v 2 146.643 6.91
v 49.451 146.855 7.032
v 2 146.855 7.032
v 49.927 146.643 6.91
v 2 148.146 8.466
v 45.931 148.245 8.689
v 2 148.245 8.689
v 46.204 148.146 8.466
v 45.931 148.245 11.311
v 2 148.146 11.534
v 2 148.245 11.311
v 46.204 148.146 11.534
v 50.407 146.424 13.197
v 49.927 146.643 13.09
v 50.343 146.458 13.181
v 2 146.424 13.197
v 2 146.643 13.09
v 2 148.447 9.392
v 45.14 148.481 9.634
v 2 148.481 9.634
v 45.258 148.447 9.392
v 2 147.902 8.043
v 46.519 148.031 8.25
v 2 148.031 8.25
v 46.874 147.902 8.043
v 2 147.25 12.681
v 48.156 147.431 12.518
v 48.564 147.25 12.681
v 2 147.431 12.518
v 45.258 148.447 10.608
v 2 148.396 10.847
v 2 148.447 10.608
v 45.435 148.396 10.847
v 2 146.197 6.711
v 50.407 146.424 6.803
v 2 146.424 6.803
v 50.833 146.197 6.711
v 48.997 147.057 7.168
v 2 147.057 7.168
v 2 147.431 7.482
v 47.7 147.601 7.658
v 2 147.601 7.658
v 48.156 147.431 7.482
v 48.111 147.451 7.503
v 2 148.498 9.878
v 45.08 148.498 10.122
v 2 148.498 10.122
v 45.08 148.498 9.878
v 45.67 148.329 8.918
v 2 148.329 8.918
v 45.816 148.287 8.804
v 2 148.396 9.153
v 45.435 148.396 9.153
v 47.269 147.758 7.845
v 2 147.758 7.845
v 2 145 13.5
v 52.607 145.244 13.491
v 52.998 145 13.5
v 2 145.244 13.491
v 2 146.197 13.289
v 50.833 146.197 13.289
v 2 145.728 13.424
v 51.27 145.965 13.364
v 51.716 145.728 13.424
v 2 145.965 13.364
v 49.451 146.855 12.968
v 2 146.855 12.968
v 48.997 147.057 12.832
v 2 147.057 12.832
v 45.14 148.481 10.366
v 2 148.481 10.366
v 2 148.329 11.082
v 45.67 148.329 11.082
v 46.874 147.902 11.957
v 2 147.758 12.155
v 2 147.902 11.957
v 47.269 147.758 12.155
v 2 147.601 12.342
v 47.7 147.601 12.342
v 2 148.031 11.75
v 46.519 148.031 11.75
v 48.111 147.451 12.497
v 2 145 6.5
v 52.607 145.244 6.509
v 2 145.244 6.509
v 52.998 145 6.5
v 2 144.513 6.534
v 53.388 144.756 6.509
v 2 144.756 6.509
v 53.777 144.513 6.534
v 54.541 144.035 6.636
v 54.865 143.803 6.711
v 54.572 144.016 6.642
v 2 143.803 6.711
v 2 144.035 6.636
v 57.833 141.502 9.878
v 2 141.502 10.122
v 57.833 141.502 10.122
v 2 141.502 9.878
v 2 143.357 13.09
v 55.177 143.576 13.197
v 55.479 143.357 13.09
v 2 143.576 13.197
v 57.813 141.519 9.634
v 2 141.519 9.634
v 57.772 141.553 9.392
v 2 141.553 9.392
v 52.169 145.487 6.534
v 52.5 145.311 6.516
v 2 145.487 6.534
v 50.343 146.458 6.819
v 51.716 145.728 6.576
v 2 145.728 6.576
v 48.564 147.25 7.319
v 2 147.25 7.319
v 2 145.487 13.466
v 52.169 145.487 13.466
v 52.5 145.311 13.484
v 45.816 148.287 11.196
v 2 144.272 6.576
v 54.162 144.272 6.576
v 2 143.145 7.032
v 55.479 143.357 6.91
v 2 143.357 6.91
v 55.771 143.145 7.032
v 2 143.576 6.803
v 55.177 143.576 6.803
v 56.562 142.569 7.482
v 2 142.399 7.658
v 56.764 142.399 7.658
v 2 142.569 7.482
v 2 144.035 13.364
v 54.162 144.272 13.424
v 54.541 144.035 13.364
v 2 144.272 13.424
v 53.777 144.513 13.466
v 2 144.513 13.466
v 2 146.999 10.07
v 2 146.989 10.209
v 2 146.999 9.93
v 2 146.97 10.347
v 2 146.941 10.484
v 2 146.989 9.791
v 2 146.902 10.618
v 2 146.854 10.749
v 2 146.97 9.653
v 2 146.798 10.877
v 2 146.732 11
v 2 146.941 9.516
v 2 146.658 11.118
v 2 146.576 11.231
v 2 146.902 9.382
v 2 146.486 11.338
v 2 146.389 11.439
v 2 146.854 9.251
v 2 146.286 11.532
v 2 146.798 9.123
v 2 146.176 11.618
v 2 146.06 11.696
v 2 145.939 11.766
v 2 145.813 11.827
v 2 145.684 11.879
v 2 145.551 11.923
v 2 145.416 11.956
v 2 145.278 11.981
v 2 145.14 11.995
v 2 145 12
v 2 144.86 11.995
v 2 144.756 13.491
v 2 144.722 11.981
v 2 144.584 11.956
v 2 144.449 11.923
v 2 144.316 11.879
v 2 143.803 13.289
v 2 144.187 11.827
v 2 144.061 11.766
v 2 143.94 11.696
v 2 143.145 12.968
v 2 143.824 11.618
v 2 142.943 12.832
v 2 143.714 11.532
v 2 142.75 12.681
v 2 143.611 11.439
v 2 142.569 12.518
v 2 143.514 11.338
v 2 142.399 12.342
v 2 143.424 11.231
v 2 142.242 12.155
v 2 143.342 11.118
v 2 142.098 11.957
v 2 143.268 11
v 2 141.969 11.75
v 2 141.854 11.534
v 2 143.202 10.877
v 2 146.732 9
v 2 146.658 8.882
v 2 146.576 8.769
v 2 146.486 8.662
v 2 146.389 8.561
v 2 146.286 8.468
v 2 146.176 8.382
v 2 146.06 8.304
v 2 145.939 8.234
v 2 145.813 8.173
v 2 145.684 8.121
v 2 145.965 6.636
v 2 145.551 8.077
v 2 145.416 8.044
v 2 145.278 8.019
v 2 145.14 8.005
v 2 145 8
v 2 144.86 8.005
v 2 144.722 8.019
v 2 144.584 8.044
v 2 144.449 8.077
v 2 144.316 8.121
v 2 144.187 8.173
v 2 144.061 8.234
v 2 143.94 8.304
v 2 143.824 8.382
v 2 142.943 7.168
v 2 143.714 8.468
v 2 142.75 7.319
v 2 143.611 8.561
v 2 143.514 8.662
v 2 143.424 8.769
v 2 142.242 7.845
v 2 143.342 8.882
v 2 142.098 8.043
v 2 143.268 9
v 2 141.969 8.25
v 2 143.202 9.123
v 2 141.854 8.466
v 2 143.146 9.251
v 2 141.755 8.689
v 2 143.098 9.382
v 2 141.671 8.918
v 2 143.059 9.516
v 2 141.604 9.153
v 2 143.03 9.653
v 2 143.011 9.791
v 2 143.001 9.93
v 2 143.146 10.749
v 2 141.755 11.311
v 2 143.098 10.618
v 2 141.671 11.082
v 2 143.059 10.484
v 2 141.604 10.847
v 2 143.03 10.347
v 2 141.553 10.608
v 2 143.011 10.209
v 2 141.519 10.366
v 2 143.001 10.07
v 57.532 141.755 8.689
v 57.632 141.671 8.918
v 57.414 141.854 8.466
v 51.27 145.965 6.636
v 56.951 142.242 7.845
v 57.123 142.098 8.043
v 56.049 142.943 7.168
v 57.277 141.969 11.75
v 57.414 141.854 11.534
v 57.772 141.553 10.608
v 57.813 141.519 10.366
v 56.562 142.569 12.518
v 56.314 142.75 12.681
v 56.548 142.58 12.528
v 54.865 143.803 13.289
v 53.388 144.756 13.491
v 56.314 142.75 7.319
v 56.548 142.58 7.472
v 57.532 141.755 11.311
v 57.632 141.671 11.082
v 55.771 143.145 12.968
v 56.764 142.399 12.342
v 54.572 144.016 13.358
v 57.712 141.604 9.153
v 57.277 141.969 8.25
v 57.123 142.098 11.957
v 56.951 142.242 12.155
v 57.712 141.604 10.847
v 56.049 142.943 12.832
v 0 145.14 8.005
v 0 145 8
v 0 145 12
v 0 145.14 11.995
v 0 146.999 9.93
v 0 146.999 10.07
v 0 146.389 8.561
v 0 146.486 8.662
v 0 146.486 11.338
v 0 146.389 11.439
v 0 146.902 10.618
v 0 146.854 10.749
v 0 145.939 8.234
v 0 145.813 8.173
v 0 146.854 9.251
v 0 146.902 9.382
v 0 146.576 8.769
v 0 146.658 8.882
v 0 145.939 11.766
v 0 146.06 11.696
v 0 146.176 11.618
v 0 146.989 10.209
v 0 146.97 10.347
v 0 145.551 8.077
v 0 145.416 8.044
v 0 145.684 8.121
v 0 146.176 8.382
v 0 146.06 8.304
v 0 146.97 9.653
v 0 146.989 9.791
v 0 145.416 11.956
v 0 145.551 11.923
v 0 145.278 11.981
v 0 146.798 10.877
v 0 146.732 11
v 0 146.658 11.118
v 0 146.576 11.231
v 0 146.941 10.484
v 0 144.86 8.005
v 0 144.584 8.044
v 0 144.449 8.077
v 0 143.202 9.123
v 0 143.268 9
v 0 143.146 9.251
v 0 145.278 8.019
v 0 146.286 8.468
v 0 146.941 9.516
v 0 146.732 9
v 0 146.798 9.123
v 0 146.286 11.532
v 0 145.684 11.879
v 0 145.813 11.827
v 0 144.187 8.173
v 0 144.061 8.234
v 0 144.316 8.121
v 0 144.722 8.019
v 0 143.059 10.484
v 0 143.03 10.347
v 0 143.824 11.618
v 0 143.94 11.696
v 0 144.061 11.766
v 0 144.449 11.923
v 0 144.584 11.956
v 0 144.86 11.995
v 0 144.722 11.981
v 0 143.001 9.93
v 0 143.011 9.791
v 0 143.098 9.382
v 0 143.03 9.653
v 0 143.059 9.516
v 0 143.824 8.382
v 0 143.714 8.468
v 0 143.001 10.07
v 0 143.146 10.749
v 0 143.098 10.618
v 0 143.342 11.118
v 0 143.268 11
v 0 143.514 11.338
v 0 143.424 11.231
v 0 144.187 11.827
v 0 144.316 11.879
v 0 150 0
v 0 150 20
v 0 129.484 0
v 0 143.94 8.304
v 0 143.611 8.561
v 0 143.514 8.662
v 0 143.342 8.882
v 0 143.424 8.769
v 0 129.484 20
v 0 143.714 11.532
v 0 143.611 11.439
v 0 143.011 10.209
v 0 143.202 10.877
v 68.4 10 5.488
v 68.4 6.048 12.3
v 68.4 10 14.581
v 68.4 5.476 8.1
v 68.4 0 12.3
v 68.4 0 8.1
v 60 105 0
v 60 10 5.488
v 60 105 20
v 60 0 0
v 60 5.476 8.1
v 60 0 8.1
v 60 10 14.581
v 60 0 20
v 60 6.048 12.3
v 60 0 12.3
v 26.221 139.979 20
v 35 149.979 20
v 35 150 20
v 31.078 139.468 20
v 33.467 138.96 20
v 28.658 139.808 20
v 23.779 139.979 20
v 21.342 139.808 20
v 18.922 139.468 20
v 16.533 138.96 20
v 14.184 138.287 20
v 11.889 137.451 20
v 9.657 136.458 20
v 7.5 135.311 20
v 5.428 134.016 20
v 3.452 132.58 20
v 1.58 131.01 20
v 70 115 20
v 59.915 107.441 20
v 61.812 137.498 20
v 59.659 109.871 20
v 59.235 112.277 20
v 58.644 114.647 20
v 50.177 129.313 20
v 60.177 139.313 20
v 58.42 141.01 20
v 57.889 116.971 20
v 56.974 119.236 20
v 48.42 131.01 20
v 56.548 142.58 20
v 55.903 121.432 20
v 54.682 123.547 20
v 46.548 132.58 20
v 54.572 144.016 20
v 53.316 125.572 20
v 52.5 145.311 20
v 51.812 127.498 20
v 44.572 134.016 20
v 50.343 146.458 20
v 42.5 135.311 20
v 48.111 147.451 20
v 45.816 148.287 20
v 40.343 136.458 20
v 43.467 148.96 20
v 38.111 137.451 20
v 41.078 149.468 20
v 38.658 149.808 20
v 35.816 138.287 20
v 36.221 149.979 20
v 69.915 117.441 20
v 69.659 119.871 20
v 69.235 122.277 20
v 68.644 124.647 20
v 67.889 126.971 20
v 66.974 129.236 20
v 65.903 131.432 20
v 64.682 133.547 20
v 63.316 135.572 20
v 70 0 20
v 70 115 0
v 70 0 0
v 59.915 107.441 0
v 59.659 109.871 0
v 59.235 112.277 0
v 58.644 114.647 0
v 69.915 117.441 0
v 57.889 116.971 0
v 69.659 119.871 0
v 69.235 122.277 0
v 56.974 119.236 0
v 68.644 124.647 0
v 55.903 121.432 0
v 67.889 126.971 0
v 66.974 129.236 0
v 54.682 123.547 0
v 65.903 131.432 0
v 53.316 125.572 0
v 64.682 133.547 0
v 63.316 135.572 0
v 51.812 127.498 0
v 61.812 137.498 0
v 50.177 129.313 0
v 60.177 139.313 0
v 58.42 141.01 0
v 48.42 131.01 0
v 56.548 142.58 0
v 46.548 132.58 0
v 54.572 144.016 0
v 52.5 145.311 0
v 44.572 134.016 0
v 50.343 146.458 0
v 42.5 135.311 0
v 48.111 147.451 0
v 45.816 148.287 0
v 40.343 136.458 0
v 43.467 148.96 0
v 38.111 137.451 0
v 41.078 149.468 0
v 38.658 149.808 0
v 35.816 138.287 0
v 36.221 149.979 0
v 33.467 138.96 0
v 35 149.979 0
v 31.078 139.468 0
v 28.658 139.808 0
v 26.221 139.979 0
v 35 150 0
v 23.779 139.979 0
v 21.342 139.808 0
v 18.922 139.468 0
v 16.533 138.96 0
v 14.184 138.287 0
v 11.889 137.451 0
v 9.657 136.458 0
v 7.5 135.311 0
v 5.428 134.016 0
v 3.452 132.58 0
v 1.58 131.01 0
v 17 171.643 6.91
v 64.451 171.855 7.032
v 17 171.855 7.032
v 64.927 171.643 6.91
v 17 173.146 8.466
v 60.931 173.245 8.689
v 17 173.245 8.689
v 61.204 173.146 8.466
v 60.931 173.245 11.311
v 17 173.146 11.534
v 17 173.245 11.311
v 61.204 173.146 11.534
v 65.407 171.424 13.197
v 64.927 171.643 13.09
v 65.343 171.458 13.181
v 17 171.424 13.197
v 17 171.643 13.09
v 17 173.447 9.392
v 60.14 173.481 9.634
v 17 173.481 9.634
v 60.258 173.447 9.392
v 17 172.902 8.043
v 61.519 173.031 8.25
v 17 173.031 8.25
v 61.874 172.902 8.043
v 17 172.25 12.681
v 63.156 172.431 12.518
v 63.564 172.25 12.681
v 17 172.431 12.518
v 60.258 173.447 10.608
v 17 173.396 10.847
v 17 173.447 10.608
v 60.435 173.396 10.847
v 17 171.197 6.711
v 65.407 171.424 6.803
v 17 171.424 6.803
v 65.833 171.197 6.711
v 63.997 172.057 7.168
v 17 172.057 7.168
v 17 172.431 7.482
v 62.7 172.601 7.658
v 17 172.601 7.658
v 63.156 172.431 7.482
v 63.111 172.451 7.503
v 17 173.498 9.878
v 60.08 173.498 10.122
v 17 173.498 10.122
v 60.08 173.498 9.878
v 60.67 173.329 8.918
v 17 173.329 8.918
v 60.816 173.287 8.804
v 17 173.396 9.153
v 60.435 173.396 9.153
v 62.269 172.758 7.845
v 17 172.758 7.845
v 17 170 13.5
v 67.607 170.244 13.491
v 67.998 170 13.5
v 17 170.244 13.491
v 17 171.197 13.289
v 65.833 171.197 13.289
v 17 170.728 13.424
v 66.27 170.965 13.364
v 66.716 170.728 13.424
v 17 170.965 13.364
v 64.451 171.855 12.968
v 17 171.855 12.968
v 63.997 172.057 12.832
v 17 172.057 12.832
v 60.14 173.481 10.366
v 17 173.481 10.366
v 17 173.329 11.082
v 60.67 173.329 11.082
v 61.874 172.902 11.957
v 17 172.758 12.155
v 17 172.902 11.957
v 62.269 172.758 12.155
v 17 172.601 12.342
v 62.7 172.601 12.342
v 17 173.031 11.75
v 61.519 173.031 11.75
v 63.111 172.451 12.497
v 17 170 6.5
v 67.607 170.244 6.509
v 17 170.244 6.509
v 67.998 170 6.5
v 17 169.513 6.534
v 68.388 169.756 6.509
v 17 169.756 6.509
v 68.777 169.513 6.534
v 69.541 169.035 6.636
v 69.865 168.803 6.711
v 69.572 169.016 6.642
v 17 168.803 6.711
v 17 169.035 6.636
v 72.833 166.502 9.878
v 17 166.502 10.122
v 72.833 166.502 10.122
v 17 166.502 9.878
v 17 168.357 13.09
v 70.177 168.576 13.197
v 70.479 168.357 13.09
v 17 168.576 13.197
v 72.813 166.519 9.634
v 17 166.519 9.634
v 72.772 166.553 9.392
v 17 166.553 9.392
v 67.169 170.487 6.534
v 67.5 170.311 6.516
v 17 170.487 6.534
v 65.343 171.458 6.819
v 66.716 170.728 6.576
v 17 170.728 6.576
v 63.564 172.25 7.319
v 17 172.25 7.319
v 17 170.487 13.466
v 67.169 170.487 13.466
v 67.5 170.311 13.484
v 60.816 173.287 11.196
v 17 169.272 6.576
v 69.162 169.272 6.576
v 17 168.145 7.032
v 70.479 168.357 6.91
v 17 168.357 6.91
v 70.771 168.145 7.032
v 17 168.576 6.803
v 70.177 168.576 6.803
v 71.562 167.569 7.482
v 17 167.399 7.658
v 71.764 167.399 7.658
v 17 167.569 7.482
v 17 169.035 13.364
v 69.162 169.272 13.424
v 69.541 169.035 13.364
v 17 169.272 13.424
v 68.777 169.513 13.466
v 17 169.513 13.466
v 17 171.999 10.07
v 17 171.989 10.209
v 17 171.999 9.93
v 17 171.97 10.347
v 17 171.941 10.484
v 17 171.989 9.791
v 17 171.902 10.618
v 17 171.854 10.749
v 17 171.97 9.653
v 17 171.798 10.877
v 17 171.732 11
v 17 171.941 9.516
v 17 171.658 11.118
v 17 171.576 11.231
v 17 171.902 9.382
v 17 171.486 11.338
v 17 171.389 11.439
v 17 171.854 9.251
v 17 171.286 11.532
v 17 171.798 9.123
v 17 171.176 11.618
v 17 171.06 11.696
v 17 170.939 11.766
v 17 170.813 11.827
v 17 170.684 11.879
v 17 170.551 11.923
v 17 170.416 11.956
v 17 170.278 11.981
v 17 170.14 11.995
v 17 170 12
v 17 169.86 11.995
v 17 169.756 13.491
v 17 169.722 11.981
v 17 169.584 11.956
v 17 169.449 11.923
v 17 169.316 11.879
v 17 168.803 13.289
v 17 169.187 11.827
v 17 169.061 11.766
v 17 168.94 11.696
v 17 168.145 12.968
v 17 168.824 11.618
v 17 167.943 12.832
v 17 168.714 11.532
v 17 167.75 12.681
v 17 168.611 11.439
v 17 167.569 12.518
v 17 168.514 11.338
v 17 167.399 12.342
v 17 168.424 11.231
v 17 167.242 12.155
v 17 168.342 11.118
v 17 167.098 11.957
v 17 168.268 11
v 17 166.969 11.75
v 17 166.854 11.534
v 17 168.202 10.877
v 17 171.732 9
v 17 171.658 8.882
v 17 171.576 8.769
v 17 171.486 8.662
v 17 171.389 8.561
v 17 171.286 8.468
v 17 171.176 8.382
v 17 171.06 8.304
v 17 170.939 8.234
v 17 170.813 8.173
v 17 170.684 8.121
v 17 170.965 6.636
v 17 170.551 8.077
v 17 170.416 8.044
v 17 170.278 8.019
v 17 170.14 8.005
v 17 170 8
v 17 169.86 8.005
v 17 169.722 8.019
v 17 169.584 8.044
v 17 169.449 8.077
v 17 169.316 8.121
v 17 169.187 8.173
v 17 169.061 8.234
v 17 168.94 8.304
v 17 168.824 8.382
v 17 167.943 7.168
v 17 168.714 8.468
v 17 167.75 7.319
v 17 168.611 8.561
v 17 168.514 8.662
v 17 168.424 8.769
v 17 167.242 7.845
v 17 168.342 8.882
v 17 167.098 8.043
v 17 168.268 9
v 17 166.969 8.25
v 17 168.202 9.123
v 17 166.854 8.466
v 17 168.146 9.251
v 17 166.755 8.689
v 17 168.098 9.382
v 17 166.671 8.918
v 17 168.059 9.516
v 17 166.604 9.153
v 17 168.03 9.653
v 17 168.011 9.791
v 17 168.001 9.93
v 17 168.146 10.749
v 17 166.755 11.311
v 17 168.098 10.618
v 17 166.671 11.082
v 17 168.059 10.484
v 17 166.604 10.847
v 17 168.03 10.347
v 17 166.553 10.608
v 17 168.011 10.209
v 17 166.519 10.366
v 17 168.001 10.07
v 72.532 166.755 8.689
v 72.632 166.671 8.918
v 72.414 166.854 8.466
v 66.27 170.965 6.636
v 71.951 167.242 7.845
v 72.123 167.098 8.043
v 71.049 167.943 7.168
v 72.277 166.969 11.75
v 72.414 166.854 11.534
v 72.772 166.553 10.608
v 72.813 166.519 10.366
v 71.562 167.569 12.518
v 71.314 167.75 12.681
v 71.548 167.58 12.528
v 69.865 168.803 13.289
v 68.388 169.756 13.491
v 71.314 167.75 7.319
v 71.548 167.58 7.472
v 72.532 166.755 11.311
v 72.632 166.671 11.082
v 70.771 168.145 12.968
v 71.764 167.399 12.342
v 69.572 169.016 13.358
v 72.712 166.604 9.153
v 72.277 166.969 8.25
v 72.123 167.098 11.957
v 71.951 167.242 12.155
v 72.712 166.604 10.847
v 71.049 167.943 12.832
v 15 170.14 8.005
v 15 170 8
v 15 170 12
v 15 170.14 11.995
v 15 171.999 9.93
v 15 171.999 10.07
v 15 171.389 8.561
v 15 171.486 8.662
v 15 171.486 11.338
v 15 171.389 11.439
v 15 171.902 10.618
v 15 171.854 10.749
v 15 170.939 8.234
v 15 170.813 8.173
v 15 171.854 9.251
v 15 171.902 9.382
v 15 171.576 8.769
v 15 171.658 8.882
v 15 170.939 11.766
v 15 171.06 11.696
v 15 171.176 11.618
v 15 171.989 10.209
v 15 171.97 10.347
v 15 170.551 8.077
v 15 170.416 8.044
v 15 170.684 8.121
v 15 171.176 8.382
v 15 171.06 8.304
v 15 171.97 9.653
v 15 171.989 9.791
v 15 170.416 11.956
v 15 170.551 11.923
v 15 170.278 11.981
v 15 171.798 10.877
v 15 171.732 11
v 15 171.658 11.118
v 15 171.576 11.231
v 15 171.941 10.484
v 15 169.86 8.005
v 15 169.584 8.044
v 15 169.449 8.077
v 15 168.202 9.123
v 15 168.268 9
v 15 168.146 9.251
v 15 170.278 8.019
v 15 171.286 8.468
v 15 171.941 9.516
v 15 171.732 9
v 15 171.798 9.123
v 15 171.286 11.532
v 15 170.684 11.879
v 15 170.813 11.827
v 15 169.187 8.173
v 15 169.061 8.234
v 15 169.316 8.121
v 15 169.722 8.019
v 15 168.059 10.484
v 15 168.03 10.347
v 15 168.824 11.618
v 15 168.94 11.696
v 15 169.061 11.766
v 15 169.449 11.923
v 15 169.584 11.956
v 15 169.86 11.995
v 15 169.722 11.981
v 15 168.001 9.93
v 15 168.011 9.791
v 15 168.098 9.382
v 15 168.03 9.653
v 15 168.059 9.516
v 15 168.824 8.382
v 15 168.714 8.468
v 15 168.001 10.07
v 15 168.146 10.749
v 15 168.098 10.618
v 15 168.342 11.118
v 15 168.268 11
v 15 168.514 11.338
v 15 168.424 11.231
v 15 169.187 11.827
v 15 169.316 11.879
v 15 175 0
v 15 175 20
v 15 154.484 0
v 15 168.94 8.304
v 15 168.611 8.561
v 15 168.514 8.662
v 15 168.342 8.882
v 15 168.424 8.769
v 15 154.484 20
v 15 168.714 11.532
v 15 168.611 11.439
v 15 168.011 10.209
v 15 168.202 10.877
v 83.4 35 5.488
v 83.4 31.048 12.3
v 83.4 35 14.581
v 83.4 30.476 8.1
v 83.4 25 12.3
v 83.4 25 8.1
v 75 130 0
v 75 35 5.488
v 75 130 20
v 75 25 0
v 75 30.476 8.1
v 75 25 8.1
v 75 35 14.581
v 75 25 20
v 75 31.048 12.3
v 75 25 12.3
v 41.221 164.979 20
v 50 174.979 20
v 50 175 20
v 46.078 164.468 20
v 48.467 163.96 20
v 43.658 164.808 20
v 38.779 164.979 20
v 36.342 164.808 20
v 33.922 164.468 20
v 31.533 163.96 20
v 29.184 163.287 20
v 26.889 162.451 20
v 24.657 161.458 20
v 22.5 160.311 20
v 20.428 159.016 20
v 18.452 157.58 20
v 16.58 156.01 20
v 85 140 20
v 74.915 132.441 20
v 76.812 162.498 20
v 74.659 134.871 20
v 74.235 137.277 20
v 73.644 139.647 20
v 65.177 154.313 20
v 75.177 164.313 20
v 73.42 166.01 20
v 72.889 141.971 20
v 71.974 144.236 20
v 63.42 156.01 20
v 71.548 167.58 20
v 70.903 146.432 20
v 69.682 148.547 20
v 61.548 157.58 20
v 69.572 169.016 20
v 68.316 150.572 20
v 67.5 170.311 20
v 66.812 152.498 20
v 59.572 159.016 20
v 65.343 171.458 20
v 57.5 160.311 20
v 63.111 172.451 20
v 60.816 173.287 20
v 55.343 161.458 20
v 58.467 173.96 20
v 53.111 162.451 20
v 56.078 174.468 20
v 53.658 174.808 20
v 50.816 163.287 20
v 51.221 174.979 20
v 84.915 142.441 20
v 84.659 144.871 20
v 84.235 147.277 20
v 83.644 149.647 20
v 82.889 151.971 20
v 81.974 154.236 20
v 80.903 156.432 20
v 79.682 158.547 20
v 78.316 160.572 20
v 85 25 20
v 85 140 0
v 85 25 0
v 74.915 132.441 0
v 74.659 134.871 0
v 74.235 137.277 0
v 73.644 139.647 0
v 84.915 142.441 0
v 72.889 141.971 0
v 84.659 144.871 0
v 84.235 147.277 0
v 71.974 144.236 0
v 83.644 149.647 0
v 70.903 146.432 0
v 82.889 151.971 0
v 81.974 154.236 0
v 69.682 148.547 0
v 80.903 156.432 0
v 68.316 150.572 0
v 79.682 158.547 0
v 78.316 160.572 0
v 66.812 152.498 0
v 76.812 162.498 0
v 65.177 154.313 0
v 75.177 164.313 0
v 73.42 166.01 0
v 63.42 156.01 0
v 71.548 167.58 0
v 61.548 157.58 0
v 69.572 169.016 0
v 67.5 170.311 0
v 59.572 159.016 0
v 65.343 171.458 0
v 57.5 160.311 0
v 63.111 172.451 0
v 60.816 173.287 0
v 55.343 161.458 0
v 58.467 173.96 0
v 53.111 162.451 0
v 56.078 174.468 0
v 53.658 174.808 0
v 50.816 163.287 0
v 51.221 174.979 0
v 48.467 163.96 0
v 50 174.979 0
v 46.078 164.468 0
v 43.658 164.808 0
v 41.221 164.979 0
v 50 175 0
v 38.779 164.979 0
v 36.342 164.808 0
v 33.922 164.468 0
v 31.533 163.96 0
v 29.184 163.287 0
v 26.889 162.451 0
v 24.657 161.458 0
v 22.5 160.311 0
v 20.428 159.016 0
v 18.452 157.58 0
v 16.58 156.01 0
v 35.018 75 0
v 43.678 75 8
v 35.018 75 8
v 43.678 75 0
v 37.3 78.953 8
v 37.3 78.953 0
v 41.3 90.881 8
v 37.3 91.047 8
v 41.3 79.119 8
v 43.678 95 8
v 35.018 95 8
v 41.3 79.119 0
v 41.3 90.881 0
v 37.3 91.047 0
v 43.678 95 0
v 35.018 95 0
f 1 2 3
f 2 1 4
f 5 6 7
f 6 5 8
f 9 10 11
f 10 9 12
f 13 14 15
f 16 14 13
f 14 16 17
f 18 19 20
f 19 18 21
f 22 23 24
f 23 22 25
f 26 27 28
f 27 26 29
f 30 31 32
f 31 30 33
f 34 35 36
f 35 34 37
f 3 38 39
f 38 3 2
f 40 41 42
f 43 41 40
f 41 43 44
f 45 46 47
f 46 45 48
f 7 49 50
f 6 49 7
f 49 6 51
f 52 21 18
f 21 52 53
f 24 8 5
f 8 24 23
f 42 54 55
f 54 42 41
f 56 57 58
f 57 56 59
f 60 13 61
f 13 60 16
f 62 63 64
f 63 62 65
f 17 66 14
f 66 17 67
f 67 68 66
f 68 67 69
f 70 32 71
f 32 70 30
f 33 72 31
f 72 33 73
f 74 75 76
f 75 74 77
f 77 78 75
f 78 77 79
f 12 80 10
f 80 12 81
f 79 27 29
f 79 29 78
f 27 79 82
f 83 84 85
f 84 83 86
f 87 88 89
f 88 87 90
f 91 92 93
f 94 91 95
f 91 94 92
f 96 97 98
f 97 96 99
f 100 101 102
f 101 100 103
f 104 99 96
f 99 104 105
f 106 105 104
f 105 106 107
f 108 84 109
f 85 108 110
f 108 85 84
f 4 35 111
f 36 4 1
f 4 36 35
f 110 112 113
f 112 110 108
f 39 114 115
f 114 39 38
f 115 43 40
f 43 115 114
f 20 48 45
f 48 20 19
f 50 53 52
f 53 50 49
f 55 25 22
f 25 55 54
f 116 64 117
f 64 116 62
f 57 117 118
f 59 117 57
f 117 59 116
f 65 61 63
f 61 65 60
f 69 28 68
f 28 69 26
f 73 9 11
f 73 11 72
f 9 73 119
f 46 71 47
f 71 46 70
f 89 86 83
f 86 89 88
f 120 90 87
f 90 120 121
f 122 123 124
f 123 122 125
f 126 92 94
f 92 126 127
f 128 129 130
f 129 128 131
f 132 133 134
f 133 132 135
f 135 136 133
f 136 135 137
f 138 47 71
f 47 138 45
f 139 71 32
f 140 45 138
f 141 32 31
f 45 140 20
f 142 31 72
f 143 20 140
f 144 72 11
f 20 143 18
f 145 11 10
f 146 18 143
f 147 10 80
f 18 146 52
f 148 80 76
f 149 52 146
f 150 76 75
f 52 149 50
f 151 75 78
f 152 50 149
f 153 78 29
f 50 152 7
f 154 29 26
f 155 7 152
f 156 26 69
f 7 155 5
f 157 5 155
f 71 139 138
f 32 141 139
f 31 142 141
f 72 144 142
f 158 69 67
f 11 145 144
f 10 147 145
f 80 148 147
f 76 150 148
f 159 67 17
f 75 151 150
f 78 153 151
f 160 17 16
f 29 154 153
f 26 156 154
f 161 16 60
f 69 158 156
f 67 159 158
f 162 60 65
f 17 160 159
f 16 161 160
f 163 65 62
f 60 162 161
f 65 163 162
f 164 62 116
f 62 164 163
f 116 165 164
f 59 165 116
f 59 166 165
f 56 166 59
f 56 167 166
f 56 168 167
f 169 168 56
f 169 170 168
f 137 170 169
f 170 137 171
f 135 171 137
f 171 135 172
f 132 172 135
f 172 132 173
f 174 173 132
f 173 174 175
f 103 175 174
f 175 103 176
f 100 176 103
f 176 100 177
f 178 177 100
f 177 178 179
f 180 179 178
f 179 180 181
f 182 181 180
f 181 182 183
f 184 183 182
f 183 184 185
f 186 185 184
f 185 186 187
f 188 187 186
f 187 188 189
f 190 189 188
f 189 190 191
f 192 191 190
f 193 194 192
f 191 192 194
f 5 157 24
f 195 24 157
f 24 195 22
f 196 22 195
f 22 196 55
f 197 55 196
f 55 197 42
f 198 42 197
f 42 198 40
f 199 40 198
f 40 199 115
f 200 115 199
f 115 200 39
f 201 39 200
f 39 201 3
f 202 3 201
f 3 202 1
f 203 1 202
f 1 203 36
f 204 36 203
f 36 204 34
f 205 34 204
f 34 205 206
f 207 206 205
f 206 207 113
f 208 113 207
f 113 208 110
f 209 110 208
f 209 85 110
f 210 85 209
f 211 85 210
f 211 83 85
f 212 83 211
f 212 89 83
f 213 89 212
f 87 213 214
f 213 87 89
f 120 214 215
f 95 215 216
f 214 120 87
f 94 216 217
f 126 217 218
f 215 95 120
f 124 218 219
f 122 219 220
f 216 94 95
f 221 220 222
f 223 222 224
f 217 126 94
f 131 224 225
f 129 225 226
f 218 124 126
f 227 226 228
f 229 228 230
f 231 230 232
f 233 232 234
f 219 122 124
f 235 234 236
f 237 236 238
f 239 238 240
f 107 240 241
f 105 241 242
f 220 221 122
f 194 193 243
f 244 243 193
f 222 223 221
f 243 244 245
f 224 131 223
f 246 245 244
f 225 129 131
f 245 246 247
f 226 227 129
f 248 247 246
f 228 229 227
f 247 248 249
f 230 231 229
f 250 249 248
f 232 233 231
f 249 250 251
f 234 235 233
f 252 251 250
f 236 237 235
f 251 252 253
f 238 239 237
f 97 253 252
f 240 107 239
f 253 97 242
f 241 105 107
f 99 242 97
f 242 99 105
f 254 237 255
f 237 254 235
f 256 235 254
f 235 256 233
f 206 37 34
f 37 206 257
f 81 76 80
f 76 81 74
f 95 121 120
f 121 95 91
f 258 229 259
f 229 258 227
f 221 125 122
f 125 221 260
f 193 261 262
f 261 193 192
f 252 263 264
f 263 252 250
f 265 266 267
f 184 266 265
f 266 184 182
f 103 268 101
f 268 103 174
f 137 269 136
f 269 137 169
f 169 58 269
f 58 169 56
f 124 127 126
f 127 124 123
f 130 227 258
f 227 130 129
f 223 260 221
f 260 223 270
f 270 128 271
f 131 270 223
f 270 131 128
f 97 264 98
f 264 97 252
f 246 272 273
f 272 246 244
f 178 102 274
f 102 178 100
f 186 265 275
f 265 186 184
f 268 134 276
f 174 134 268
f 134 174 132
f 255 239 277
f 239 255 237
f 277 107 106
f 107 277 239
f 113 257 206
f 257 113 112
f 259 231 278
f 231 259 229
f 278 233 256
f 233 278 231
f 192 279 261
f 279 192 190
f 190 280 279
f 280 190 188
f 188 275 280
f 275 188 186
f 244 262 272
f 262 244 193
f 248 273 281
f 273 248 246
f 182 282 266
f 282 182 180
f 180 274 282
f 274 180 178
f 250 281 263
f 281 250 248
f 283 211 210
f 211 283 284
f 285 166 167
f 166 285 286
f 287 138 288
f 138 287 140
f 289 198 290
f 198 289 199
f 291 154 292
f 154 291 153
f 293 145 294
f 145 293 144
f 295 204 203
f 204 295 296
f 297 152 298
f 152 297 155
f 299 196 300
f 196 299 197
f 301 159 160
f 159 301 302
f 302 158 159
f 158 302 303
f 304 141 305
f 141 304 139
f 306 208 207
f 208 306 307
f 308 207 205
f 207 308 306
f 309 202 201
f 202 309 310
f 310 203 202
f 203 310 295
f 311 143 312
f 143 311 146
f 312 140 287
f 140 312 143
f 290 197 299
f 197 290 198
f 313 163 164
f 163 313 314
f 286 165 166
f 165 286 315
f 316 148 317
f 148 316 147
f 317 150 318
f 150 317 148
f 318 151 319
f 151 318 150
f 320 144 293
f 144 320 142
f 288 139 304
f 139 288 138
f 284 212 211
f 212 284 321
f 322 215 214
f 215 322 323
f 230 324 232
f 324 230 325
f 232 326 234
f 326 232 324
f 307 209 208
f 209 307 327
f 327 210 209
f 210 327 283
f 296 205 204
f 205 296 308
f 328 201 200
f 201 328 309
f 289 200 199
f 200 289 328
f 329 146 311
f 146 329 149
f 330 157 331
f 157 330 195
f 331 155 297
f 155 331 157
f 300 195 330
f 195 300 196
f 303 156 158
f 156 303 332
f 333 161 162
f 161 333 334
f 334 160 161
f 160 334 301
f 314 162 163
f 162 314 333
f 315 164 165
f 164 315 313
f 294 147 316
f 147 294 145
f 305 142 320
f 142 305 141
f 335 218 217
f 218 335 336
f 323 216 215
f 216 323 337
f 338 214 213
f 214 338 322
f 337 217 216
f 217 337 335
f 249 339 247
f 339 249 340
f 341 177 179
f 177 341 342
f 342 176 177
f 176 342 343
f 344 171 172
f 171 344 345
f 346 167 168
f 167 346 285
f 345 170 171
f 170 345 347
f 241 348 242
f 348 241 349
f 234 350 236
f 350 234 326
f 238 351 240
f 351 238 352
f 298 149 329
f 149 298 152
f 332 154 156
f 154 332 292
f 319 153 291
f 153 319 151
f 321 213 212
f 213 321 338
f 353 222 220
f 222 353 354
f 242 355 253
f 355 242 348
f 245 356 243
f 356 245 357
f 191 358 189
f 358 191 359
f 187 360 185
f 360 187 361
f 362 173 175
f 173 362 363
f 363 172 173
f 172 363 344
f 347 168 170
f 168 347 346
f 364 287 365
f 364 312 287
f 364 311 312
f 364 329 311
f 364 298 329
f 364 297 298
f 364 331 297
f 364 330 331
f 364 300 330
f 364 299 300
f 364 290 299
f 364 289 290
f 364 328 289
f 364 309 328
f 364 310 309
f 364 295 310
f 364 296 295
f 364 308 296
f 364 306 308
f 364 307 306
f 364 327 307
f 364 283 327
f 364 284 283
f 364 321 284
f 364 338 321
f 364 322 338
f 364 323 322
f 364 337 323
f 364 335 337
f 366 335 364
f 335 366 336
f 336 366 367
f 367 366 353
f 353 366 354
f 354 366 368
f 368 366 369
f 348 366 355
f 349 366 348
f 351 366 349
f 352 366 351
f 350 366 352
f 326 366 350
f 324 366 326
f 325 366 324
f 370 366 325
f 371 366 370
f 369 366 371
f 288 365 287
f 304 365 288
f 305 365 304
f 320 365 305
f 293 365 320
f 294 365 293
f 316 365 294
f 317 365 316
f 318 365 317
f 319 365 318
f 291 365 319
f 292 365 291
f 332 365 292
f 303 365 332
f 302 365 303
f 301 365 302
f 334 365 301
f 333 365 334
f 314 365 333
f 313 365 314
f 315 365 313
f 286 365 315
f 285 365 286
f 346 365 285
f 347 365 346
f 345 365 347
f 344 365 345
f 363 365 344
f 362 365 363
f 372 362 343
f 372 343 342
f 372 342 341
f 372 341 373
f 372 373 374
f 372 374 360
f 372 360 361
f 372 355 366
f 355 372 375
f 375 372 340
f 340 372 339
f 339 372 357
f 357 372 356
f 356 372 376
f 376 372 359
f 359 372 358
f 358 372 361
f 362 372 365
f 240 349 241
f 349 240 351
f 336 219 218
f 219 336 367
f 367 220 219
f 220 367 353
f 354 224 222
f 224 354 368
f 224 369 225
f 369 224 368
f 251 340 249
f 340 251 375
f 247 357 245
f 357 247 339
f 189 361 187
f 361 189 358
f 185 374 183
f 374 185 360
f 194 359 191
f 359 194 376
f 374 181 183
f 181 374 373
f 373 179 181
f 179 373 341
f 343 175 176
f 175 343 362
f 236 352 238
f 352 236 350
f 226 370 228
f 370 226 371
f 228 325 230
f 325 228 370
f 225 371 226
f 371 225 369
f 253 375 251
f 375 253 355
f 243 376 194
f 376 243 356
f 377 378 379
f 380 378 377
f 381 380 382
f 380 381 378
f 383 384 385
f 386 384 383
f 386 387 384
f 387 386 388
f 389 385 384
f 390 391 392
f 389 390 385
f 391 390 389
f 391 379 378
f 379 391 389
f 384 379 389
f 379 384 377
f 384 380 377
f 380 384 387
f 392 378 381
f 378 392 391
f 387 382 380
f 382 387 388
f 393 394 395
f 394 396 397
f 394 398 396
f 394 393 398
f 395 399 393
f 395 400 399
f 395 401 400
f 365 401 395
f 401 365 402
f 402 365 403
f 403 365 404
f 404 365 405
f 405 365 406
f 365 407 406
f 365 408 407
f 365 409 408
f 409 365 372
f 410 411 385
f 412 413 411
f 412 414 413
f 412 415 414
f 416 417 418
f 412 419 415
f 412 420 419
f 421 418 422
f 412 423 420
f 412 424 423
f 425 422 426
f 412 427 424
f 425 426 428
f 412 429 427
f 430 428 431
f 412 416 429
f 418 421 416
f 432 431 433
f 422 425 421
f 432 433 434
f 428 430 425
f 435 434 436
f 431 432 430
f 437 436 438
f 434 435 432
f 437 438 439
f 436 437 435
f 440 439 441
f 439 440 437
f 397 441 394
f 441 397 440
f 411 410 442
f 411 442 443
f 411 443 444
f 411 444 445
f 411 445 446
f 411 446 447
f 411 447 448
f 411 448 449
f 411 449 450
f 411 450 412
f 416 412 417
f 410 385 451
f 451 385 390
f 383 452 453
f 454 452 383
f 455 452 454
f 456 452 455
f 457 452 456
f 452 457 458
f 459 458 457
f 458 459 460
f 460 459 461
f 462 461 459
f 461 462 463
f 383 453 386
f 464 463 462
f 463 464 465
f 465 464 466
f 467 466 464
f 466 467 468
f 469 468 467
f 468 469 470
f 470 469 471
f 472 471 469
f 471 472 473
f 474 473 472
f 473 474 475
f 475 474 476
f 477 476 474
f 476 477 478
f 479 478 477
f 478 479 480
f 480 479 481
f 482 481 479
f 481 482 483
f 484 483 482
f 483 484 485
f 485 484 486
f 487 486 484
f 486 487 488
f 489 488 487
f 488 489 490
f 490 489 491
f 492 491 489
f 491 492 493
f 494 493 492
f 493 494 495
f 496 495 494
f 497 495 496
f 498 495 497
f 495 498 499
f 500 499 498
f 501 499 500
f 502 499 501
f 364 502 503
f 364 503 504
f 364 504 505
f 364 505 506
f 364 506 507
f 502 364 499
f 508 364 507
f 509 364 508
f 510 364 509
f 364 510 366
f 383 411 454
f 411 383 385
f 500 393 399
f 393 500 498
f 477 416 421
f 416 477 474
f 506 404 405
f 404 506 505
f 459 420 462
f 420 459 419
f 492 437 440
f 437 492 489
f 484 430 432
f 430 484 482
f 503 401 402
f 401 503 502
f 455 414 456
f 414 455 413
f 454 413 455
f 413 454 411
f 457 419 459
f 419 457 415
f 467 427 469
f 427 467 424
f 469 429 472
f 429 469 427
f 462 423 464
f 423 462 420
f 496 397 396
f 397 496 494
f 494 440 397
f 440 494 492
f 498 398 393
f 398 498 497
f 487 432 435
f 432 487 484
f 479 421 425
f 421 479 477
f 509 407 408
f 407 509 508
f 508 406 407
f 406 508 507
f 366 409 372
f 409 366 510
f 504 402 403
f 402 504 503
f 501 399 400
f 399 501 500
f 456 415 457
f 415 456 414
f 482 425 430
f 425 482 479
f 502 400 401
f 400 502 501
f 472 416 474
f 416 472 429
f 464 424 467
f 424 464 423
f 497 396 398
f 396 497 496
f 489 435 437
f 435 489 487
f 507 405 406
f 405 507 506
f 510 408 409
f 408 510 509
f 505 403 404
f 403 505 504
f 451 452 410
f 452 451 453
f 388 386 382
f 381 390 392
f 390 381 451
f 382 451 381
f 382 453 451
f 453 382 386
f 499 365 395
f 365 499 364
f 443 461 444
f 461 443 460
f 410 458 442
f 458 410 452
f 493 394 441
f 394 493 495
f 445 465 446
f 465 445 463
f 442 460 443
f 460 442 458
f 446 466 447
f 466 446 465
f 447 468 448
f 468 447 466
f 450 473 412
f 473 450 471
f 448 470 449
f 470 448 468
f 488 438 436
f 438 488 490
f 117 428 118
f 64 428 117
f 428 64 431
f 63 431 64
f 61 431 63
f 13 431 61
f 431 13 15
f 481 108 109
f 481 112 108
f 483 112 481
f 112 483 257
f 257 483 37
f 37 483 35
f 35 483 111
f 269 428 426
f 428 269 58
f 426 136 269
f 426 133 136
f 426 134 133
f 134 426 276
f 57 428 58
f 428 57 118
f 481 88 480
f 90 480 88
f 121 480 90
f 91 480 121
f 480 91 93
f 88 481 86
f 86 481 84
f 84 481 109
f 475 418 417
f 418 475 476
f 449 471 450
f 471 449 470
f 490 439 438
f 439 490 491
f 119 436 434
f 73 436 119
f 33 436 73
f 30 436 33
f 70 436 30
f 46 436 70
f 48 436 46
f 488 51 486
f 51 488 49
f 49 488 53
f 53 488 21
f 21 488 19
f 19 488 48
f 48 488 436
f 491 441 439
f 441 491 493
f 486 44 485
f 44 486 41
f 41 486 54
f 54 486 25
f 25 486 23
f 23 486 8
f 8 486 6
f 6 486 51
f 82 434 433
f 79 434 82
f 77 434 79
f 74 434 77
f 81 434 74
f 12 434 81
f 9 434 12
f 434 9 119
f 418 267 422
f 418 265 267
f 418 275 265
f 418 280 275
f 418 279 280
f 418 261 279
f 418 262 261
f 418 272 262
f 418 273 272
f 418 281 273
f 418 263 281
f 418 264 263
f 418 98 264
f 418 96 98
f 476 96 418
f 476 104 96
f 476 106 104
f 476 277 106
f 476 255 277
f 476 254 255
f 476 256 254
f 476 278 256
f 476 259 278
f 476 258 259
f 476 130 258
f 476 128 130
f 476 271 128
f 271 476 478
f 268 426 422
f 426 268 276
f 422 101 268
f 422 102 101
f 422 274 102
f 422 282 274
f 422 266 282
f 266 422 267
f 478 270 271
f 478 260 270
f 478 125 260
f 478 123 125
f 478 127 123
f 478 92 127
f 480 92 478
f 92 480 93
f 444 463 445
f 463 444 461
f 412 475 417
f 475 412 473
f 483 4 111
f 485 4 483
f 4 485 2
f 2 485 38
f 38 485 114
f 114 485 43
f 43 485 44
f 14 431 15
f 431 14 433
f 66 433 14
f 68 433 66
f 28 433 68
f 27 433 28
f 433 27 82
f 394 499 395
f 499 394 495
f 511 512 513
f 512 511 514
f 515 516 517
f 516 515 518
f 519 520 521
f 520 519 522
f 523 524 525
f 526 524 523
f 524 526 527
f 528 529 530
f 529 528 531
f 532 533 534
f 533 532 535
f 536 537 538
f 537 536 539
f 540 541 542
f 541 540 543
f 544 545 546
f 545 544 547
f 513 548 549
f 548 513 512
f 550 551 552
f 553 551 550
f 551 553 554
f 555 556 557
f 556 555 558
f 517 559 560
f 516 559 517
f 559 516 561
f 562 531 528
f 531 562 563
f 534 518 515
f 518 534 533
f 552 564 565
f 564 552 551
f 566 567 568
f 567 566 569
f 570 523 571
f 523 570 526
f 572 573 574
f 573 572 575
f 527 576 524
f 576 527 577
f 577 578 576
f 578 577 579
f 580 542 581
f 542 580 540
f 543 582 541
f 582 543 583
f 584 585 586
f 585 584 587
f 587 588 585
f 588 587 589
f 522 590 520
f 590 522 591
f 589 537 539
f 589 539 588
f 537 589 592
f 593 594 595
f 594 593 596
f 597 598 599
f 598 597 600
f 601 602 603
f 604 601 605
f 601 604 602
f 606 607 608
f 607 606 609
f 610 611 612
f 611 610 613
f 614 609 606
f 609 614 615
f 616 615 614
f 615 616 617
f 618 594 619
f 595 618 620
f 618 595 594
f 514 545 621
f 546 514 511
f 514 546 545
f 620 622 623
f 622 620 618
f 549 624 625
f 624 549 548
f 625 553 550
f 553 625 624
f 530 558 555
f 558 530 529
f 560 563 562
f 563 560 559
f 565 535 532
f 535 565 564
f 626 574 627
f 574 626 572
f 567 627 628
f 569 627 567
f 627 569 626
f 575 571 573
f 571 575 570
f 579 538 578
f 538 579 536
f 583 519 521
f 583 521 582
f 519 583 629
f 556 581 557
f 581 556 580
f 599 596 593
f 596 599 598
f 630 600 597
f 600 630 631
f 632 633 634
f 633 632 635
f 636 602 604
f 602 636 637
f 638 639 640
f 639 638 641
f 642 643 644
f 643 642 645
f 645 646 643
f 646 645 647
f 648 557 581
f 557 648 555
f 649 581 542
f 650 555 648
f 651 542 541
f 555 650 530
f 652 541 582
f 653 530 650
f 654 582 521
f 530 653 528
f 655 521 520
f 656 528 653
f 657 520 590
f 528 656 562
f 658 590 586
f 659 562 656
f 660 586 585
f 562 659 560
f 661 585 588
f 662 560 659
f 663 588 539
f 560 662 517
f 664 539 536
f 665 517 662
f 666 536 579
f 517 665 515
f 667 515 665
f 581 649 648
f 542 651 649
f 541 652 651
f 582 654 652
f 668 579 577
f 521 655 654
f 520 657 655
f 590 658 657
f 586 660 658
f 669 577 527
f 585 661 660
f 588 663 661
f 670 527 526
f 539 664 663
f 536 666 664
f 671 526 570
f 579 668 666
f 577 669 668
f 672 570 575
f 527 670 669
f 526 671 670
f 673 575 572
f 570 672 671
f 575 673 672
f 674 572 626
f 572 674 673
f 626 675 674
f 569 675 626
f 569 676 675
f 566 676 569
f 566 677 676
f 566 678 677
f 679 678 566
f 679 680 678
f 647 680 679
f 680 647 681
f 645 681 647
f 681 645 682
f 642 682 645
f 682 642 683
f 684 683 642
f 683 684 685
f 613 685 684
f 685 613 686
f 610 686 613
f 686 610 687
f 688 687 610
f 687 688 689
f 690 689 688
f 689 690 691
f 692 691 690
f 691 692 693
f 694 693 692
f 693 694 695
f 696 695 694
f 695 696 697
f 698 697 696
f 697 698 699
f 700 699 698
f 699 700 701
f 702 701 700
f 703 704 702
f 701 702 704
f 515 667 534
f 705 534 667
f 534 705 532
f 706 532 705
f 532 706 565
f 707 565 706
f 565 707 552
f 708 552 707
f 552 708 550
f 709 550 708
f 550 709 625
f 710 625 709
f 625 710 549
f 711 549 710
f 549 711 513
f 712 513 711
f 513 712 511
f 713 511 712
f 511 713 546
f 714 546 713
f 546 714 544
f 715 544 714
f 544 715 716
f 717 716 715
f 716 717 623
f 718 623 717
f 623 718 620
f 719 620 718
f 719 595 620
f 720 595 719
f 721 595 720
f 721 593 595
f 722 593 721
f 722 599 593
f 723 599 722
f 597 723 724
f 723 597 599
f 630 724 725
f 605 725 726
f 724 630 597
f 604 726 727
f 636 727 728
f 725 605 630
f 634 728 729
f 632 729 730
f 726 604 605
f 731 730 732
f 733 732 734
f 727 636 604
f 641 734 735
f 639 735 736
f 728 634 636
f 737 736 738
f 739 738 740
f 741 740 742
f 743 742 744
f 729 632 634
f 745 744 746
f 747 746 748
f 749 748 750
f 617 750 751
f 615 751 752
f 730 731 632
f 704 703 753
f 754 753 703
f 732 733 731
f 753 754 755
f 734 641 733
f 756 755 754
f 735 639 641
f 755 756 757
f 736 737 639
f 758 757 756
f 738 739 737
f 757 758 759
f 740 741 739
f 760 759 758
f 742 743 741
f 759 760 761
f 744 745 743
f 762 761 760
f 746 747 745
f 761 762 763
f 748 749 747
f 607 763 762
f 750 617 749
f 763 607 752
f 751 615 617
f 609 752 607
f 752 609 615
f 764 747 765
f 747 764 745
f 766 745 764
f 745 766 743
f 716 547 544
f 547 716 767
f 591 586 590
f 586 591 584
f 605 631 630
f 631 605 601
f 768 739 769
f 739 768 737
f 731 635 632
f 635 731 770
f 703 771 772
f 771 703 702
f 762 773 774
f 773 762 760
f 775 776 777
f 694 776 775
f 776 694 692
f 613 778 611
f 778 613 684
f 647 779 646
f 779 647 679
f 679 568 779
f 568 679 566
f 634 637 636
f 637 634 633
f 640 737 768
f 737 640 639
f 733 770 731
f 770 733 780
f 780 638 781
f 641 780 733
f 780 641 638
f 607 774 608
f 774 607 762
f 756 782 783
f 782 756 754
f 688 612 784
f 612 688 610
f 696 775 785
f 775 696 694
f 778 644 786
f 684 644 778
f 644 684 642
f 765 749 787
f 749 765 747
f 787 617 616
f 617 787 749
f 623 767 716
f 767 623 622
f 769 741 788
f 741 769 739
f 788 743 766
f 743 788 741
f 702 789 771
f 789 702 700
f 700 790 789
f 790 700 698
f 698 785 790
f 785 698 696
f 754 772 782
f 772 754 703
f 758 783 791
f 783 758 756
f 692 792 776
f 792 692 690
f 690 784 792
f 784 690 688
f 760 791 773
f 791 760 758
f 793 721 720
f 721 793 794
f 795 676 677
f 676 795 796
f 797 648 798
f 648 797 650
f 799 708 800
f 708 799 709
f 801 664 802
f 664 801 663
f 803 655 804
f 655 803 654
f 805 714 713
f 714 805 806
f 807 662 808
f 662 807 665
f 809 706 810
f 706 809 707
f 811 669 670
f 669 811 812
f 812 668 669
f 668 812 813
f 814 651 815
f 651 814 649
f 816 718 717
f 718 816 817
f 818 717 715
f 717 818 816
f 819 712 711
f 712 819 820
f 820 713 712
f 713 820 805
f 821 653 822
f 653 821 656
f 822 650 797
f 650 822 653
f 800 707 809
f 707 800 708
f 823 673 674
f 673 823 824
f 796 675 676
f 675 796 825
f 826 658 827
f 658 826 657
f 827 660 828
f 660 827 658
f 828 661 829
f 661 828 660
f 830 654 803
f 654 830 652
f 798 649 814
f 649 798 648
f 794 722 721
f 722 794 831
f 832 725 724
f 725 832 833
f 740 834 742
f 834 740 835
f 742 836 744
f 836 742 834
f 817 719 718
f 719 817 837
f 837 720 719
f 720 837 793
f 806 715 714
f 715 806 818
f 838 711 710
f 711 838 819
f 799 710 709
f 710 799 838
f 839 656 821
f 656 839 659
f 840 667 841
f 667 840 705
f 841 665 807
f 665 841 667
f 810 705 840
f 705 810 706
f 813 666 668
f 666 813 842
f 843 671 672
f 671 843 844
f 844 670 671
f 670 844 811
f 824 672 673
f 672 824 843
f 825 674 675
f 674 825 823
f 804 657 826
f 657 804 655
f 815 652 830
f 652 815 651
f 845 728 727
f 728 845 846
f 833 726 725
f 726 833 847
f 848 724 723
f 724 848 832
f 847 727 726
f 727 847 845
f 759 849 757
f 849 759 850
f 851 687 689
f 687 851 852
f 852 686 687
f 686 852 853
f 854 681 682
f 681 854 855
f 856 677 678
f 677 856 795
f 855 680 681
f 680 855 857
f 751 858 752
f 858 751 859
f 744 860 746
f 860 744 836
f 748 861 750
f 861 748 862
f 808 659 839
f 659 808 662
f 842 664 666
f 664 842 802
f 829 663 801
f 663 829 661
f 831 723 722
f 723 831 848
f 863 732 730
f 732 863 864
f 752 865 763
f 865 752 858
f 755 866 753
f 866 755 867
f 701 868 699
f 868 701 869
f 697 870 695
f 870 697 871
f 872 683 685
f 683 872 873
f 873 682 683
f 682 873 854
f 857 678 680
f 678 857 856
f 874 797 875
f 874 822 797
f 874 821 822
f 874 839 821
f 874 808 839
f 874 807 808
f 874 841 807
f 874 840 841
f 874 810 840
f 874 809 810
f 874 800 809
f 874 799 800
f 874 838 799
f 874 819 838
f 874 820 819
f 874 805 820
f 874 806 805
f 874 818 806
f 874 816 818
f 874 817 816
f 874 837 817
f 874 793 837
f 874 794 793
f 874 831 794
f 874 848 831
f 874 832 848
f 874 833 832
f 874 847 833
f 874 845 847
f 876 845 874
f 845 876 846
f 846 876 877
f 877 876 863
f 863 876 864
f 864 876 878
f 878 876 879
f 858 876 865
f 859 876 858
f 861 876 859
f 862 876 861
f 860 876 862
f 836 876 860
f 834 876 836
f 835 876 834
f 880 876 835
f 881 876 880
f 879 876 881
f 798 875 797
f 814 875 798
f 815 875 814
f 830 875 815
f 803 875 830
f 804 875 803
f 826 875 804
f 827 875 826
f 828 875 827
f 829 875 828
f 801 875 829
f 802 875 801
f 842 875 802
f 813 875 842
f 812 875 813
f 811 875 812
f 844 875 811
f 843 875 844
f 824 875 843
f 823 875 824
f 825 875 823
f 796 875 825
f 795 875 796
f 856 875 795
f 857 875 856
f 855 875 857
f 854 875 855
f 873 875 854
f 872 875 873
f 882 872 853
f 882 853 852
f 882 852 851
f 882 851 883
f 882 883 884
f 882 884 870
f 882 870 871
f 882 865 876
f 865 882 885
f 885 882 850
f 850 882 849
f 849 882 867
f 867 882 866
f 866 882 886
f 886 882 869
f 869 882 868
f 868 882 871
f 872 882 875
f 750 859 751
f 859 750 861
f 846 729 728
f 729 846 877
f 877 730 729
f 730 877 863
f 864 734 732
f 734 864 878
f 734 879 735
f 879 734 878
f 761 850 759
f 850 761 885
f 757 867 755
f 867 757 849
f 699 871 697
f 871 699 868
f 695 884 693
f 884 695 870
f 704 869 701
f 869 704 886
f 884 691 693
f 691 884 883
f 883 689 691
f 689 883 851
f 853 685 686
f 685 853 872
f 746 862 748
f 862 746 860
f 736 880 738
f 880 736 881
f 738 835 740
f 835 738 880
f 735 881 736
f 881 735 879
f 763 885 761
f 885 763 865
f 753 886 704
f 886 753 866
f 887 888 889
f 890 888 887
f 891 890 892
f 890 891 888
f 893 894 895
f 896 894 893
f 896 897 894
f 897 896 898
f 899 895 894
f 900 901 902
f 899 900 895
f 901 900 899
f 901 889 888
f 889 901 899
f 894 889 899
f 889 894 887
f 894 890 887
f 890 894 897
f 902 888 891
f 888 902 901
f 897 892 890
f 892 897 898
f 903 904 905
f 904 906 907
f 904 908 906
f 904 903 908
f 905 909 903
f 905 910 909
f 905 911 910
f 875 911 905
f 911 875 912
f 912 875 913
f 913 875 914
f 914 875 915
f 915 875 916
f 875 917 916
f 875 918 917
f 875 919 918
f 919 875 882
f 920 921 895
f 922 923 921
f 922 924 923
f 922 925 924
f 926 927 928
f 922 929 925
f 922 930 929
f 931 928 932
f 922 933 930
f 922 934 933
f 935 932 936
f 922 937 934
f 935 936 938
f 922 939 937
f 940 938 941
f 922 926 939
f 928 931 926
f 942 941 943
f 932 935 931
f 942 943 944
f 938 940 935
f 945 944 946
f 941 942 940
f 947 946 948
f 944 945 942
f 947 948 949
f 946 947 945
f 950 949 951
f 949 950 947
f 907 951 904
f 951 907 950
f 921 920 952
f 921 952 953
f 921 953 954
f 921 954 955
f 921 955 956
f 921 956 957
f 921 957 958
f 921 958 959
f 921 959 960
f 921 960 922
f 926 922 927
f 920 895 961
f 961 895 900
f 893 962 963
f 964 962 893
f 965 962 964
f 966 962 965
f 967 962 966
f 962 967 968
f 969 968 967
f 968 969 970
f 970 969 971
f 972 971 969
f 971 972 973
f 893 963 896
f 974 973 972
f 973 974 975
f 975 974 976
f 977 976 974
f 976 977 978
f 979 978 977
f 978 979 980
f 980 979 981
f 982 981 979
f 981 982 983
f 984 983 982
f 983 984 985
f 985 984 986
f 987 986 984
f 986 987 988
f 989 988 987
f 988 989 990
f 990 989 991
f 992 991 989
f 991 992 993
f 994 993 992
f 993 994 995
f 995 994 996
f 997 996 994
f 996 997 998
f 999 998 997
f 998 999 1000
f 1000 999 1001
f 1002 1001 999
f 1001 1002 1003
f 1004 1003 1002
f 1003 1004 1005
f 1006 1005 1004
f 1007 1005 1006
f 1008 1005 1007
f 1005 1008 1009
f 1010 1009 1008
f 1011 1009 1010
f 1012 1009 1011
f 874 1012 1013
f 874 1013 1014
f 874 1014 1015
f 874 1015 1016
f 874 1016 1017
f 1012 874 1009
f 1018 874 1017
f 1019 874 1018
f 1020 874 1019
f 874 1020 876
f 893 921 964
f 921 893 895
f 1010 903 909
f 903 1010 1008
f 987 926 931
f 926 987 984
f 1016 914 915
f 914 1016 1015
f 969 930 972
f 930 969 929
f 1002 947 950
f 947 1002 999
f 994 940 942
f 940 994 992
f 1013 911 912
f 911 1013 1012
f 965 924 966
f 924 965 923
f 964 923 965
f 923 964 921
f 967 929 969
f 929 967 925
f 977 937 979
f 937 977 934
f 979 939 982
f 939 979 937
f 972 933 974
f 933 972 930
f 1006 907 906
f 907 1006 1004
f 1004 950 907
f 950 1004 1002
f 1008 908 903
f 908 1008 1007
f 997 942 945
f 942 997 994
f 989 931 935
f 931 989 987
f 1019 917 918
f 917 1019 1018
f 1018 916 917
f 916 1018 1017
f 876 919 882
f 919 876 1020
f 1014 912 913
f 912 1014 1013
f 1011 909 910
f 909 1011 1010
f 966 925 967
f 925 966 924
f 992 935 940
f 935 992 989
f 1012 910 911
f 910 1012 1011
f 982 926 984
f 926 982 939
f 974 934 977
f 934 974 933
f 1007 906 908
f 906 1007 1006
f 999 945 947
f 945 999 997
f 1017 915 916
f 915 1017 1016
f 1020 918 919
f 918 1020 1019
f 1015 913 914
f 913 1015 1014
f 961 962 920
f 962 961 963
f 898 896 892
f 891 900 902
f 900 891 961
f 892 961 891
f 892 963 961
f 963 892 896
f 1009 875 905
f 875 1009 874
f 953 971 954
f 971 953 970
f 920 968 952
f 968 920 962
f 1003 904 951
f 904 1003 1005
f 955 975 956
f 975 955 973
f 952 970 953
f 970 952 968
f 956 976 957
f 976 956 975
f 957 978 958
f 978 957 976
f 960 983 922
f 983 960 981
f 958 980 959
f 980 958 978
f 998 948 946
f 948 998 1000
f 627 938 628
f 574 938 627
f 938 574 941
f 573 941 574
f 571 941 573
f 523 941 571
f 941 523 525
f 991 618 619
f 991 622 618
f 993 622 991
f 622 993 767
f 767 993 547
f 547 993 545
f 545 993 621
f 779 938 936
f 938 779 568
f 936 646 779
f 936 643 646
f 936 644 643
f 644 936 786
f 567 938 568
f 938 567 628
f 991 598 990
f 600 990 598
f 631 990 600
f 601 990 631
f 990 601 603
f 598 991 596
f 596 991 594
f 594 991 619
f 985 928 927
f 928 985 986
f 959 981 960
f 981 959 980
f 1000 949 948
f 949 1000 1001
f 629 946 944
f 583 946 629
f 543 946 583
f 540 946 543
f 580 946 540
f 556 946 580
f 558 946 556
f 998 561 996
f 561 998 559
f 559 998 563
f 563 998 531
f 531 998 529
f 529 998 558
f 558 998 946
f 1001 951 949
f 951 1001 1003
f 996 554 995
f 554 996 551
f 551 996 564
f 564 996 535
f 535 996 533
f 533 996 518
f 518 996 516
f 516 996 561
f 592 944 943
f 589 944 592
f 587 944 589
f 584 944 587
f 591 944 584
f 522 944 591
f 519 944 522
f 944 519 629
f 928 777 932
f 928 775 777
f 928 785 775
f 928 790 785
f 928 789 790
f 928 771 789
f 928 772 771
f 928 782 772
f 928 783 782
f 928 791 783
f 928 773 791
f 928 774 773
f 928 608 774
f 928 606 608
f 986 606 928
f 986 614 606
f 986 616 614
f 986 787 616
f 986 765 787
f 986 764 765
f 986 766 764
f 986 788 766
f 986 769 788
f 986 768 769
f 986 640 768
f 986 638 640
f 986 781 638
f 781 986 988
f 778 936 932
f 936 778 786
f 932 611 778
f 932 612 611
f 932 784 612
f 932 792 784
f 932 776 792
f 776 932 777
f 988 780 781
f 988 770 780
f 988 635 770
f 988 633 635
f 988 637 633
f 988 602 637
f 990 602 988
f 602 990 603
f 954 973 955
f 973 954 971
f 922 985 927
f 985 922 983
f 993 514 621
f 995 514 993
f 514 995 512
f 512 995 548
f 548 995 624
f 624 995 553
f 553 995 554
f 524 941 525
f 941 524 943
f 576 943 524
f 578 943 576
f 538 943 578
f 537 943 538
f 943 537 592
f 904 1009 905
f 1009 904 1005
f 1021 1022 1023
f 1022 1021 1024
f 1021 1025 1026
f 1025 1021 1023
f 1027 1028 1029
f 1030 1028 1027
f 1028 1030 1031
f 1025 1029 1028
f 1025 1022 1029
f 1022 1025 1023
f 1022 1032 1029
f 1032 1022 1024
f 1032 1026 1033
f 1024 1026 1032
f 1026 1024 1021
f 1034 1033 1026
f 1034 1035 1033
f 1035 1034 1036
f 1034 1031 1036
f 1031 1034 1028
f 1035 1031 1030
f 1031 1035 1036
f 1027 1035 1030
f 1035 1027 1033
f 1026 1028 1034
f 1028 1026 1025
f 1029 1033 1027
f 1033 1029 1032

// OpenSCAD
screw_hole = 4;
screw_head = 7;
length = 300;
width = 20;
depth = 70;
thickness = 10;
buffer_top = 15;
buffer_left = 5;
two_pieces = true;
connector_length = 20;
connector_clearence = 0.05;

fridge_grip();

module fridge_grip() {
    if (two_pieces) {
        translate([depth/2,length/4,0]) {
            grip_connector_wrapper(false);
        }
        half_grip();
        translate([thickness+buffer_left, thickness+buffer_top, 0]) {
            half_grip();
        }
    } else {
        grip();
    }
}

module grip() {
    half_grip(false);
    translate([0,0,width]) {
        rotate([180, 0, 0]) {
            half_grip(false);
        }
    }
}

module half_grip(connector_extrude = true) {
    half_length = length/2;
    intersection() {
        difference() {
            cube([depth,half_length,width]);
            translate([-thickness,-thickness,0]) {
                cube([depth,half_length-depth/2,width]);
                translate([depth/2,length/2-depth/2,0]) {
                    cylinder(h=width, d=depth, $fn=90);
                }
            }
            translate([2,half_length-thickness/2,width/2]) {
                rotate([0,90,0]) {
                    cylinder(h=depth, d=screw_head, $fn=90);
                    translate([0,0,-2]) {
                        cylinder(h=depth, d=screw_hole, $fn=90);
                    }
                }
            }
            if(connector_extrude)  {
            translate([depth-thickness,-connector_length/2,width*0.73]) {
                    rotate([0,90,0]) {
                        grip_connector_wrapper(true);
                    }
                }
            }
        }
        union() {
            translate([depth/2,half_length-depth/2,0]) {
                cylinder(h=width, d=depth, $fn=90);
            }
            cube([depth,half_length-depth/2,width]);
            translate([-depth/2,depth*1.5,0]) {
                cube([depth,depth,width]);
            }
        }
    }
}

module grip_connector_wrapper(extrude = false) {
    connector_height = thickness*0.8;
    connector_width = width*0.5;
    if(extrude) {
        clearence = 1+connector_clearence;
        grip_connector(connector_height*clearence, connector_width*clearence);
    } else {
        grip_connector(connector_height, connector_width);
    }
}

module grip_connector(connector_height, connector_width) {
    triangle(connector_height, connector_width);
    translate([0,connector_length,connector_height]) {
        rotate([180,0,0]) {
            triangle(connector_height, connector_width);
        }
    }
    translate([2.3,3,]) {
        cube([connector_width*0.4,connector_length*0.8,connector_height]);
    }
}

module triangle(height, width) {
    translate([width/2.3,height/3.2,0]) {
        rotate([0,0,90]) {
            cylinder(h=height, d=width, $fn=3);
        }
    }
}
